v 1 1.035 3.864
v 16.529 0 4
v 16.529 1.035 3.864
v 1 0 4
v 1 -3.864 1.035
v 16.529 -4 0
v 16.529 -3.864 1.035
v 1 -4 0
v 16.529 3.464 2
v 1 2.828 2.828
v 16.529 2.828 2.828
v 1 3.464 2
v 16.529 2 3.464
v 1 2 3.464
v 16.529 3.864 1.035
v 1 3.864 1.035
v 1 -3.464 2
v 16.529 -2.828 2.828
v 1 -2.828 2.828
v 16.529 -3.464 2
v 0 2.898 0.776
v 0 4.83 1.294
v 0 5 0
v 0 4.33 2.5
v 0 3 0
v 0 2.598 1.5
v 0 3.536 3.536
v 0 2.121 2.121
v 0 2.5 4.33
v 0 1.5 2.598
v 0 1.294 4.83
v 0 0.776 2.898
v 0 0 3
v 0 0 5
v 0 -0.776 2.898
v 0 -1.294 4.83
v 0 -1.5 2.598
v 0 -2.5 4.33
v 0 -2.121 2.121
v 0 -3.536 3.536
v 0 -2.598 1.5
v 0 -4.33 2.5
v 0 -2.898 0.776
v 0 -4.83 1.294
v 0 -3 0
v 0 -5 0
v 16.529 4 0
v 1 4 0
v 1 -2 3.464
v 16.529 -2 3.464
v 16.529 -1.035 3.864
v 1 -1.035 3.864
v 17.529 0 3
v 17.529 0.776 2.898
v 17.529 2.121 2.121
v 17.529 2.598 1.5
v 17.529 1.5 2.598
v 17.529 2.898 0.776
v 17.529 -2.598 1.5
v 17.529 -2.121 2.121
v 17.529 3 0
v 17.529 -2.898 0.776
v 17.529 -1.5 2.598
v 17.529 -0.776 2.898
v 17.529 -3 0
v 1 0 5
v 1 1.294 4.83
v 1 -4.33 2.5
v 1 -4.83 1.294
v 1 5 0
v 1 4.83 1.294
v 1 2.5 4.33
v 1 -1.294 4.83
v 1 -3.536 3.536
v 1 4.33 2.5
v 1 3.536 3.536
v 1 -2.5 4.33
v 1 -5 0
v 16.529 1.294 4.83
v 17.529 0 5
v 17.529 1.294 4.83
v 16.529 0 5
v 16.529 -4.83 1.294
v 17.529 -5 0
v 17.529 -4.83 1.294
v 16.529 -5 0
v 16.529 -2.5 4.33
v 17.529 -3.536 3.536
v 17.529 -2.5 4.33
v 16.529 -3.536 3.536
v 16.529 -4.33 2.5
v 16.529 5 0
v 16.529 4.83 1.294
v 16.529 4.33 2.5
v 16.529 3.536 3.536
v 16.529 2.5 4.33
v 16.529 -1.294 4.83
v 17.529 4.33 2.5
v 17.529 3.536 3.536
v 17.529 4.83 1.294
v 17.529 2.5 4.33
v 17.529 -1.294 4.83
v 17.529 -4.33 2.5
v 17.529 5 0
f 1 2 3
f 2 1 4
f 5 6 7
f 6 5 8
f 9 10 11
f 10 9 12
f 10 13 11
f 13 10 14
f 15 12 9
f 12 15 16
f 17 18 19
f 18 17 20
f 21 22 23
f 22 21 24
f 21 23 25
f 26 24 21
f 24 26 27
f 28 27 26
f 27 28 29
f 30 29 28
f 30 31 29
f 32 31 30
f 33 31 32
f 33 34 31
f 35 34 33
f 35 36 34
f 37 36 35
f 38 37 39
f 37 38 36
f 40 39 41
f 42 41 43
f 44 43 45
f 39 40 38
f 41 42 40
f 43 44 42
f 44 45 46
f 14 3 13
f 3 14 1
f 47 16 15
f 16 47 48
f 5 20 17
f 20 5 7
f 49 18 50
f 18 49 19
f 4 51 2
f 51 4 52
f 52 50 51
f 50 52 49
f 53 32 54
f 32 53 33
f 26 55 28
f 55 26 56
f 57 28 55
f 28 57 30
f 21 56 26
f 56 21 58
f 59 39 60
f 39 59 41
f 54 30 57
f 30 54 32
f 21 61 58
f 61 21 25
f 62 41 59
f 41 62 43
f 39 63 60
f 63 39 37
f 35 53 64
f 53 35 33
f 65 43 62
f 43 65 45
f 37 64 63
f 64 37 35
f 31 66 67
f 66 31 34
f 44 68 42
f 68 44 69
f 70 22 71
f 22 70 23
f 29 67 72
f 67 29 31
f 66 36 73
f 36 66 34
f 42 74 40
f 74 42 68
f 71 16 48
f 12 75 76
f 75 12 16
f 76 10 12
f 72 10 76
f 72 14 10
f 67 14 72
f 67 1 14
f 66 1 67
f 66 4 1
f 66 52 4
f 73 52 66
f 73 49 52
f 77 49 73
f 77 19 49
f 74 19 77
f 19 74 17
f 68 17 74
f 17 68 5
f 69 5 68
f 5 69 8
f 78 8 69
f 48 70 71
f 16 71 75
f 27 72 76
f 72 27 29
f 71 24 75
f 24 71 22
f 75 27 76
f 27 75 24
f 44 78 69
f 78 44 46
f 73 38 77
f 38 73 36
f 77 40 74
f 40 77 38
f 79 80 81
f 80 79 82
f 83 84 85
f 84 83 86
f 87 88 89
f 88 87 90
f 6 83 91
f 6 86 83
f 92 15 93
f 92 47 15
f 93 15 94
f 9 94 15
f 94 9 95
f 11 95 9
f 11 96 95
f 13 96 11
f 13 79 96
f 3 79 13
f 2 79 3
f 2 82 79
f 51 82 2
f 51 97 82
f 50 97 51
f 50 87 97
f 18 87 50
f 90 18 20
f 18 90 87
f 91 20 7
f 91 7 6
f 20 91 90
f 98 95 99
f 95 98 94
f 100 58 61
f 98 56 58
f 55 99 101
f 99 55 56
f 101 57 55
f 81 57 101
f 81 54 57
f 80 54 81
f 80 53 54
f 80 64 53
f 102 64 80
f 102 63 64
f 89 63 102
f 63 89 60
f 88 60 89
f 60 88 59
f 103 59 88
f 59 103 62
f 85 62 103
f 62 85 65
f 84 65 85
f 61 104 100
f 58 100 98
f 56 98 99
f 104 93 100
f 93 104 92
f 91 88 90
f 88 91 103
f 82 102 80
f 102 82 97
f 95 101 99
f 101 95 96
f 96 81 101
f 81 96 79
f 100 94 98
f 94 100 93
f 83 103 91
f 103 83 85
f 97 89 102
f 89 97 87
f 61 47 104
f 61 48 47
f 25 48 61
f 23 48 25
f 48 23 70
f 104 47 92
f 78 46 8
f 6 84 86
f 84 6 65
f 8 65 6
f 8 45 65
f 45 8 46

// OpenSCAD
// file: ../build_environments.scad
// build_environments.scad: modules to build level sections
//

module pool(diameter=10.0, wall_height=2.0, step_width=3.0, connections=[])
{
    difference() {
        union() {
        difference() {
            cylinder(h=0.5,r1=diameter+step_width,r2=diameter+step_width,$fn=48);
            translate([0,0,-0.1])
                cylinder(h=0.7,r1=diameter,r2=diameter,$fn=48);
        }
        difference() {
            cylinder(h=wall_height,r1=diameter+step_width+1.0,r2=diameter+step_width+1.0,$fn=48);
            translate([0,0,-0.1])
                cylinder(h=wall_height+0.2,r1=diameter+step_width,r2=diameter+step_width,$fn=48);
        }
        }
    
        for (c = connections)
        {
            rotate([0,90,0]) {
                angle = atan2(c[1],c[0]);
                rotate([-angle,0,0]) {
                    cylinder(h=diameter+5.0,r1=c[2],r2=c[2],$fn=48);
                }
            }
        }
    }
}

module straight(length=10.0, width=2.0, dy1=0.0, dy2=0.0, dz=0.0)
{
    dims = [0, 0, 0, 0, 0, (dz/length)];
    matrix = [
        [ 1, dims[0], dims[1], 0 ],
        [ dims[2], 1, dims[4], 0 ],
        [ dims[5], dims[3], 1, 0 ],
        [ 0, 0, 0, 1 ]
    ];
    multmatrix(matrix)
    difference() {
        translate([dy1,0,0])
        union() {
            rotate([0,90,0]) {
                difference() {
                    cylinder(h=(length-dy1-dy2),r1=width+1.0,r2=width+1.0,$fn=24);
                    translate([0,0,-0.1])
                        cylinder(h=(length-dy1-dy2+0.2),r1=width,r2=width,$fn=24);
                }
                difference() {
                    cylinder(h=1.0,r1=width+2.0,r2=width+2.0,$fn=24);
                    translate([0,0,-0.1])
                        cylinder(h=1.2,r1=width,r2=width,$fn=24);
                }
                translate([0,0,(length-dy1-dy2)-1.0]) {
                    difference() {
                        cylinder(h=1.0,r1=width+2.0,r2=width+2.0,$fn=24);
                        translate([0,0,-0.1])
                            cylinder(h=1.2,r1=width,r2=width,$fn=24);
                    }
                }
            }
        }
        translate([0,0,-(2*width+4.0)/2])
            cube([3*length,3*length,2*width+4.0],center=true);
    }
}

module curve(p0=[0,0], center=[0,0], dir=1, angle=0.0, width=2.0)
{
    radius = sqrt((p0[0]-center[0])*(p0[0]-center[0]) + (p0[1]-center[1])*(p0[1]-center[1]));
    if (dir == 0) {
        difference() {
            rotate([0,0,-90])
            difference() {
                rotate_extrude(angle = angle, convexity = 10, $fn=32)
                    translate([radius, 0, 0])
                        circle(r = width+1.0,$fn=24);
                rotate([0,0,-1.0])
                    rotate_extrude(angle = angle+2.0, convexity = 10, $fn=32)
                        translate([radius, 0, 0])
                            circle(r = width,$fn=24);
            }
            translate([0,0,-(2*width+4.0)/2])
                cube([5*radius,5*radius,2*width+4.0],center=true);
        }
    }
    else {
        difference() {
            rotate([0,0,90])
            difference() {
                rotate_extrude(angle = -angle, convexity = 10, $fn=32)
                    translate([radius, 0, 0])
                        circle(r = width+1.0,$fn=24);
                rotate([0,0,1.0])
                    rotate_extrude(angle = -angle-2.0, convexity = 10, $fn=32)
                        translate([radius, 0, 0])
                            circle(r = width,$fn=24);
            }
            translate([0,0,-(2*width+4.0)/2])
                cube([5*radius,5*radius,2*width+4.0],center=true);
        }
    }

}

// test pool
//pool(diameter=12.0000, wall_height=3.0000, step_width=3.0000, connections=[[0.0000,-26.0000,2.0000], [23.6074,0.0000,2.0000]]);

// test straight, slope
//straight(length=26.0000, width=2.0000, dy1=11.8322, dy2=6.7082, dz=0.0000);
//straight(length=29.1549, width=12.0000, dy1=0.0000, dy2=0.0000, dz=-15.0000);

// test curve
//curve(p0=[23.6074, 0.0000], center=[23.6074, 5.0000], dir=0, angle=60.1011, width=2.0000);
//curve(p0=[33.6426, 12.4219], center=[37.9771, 9.9295], dir=1, angle=120.4627, width=2.0000);
// main file
use <../build_environments.scad>;
straight(length=27.0688, width=3.0000, dy1=0.0000, dy2=9.5394, dz=0.0000);
